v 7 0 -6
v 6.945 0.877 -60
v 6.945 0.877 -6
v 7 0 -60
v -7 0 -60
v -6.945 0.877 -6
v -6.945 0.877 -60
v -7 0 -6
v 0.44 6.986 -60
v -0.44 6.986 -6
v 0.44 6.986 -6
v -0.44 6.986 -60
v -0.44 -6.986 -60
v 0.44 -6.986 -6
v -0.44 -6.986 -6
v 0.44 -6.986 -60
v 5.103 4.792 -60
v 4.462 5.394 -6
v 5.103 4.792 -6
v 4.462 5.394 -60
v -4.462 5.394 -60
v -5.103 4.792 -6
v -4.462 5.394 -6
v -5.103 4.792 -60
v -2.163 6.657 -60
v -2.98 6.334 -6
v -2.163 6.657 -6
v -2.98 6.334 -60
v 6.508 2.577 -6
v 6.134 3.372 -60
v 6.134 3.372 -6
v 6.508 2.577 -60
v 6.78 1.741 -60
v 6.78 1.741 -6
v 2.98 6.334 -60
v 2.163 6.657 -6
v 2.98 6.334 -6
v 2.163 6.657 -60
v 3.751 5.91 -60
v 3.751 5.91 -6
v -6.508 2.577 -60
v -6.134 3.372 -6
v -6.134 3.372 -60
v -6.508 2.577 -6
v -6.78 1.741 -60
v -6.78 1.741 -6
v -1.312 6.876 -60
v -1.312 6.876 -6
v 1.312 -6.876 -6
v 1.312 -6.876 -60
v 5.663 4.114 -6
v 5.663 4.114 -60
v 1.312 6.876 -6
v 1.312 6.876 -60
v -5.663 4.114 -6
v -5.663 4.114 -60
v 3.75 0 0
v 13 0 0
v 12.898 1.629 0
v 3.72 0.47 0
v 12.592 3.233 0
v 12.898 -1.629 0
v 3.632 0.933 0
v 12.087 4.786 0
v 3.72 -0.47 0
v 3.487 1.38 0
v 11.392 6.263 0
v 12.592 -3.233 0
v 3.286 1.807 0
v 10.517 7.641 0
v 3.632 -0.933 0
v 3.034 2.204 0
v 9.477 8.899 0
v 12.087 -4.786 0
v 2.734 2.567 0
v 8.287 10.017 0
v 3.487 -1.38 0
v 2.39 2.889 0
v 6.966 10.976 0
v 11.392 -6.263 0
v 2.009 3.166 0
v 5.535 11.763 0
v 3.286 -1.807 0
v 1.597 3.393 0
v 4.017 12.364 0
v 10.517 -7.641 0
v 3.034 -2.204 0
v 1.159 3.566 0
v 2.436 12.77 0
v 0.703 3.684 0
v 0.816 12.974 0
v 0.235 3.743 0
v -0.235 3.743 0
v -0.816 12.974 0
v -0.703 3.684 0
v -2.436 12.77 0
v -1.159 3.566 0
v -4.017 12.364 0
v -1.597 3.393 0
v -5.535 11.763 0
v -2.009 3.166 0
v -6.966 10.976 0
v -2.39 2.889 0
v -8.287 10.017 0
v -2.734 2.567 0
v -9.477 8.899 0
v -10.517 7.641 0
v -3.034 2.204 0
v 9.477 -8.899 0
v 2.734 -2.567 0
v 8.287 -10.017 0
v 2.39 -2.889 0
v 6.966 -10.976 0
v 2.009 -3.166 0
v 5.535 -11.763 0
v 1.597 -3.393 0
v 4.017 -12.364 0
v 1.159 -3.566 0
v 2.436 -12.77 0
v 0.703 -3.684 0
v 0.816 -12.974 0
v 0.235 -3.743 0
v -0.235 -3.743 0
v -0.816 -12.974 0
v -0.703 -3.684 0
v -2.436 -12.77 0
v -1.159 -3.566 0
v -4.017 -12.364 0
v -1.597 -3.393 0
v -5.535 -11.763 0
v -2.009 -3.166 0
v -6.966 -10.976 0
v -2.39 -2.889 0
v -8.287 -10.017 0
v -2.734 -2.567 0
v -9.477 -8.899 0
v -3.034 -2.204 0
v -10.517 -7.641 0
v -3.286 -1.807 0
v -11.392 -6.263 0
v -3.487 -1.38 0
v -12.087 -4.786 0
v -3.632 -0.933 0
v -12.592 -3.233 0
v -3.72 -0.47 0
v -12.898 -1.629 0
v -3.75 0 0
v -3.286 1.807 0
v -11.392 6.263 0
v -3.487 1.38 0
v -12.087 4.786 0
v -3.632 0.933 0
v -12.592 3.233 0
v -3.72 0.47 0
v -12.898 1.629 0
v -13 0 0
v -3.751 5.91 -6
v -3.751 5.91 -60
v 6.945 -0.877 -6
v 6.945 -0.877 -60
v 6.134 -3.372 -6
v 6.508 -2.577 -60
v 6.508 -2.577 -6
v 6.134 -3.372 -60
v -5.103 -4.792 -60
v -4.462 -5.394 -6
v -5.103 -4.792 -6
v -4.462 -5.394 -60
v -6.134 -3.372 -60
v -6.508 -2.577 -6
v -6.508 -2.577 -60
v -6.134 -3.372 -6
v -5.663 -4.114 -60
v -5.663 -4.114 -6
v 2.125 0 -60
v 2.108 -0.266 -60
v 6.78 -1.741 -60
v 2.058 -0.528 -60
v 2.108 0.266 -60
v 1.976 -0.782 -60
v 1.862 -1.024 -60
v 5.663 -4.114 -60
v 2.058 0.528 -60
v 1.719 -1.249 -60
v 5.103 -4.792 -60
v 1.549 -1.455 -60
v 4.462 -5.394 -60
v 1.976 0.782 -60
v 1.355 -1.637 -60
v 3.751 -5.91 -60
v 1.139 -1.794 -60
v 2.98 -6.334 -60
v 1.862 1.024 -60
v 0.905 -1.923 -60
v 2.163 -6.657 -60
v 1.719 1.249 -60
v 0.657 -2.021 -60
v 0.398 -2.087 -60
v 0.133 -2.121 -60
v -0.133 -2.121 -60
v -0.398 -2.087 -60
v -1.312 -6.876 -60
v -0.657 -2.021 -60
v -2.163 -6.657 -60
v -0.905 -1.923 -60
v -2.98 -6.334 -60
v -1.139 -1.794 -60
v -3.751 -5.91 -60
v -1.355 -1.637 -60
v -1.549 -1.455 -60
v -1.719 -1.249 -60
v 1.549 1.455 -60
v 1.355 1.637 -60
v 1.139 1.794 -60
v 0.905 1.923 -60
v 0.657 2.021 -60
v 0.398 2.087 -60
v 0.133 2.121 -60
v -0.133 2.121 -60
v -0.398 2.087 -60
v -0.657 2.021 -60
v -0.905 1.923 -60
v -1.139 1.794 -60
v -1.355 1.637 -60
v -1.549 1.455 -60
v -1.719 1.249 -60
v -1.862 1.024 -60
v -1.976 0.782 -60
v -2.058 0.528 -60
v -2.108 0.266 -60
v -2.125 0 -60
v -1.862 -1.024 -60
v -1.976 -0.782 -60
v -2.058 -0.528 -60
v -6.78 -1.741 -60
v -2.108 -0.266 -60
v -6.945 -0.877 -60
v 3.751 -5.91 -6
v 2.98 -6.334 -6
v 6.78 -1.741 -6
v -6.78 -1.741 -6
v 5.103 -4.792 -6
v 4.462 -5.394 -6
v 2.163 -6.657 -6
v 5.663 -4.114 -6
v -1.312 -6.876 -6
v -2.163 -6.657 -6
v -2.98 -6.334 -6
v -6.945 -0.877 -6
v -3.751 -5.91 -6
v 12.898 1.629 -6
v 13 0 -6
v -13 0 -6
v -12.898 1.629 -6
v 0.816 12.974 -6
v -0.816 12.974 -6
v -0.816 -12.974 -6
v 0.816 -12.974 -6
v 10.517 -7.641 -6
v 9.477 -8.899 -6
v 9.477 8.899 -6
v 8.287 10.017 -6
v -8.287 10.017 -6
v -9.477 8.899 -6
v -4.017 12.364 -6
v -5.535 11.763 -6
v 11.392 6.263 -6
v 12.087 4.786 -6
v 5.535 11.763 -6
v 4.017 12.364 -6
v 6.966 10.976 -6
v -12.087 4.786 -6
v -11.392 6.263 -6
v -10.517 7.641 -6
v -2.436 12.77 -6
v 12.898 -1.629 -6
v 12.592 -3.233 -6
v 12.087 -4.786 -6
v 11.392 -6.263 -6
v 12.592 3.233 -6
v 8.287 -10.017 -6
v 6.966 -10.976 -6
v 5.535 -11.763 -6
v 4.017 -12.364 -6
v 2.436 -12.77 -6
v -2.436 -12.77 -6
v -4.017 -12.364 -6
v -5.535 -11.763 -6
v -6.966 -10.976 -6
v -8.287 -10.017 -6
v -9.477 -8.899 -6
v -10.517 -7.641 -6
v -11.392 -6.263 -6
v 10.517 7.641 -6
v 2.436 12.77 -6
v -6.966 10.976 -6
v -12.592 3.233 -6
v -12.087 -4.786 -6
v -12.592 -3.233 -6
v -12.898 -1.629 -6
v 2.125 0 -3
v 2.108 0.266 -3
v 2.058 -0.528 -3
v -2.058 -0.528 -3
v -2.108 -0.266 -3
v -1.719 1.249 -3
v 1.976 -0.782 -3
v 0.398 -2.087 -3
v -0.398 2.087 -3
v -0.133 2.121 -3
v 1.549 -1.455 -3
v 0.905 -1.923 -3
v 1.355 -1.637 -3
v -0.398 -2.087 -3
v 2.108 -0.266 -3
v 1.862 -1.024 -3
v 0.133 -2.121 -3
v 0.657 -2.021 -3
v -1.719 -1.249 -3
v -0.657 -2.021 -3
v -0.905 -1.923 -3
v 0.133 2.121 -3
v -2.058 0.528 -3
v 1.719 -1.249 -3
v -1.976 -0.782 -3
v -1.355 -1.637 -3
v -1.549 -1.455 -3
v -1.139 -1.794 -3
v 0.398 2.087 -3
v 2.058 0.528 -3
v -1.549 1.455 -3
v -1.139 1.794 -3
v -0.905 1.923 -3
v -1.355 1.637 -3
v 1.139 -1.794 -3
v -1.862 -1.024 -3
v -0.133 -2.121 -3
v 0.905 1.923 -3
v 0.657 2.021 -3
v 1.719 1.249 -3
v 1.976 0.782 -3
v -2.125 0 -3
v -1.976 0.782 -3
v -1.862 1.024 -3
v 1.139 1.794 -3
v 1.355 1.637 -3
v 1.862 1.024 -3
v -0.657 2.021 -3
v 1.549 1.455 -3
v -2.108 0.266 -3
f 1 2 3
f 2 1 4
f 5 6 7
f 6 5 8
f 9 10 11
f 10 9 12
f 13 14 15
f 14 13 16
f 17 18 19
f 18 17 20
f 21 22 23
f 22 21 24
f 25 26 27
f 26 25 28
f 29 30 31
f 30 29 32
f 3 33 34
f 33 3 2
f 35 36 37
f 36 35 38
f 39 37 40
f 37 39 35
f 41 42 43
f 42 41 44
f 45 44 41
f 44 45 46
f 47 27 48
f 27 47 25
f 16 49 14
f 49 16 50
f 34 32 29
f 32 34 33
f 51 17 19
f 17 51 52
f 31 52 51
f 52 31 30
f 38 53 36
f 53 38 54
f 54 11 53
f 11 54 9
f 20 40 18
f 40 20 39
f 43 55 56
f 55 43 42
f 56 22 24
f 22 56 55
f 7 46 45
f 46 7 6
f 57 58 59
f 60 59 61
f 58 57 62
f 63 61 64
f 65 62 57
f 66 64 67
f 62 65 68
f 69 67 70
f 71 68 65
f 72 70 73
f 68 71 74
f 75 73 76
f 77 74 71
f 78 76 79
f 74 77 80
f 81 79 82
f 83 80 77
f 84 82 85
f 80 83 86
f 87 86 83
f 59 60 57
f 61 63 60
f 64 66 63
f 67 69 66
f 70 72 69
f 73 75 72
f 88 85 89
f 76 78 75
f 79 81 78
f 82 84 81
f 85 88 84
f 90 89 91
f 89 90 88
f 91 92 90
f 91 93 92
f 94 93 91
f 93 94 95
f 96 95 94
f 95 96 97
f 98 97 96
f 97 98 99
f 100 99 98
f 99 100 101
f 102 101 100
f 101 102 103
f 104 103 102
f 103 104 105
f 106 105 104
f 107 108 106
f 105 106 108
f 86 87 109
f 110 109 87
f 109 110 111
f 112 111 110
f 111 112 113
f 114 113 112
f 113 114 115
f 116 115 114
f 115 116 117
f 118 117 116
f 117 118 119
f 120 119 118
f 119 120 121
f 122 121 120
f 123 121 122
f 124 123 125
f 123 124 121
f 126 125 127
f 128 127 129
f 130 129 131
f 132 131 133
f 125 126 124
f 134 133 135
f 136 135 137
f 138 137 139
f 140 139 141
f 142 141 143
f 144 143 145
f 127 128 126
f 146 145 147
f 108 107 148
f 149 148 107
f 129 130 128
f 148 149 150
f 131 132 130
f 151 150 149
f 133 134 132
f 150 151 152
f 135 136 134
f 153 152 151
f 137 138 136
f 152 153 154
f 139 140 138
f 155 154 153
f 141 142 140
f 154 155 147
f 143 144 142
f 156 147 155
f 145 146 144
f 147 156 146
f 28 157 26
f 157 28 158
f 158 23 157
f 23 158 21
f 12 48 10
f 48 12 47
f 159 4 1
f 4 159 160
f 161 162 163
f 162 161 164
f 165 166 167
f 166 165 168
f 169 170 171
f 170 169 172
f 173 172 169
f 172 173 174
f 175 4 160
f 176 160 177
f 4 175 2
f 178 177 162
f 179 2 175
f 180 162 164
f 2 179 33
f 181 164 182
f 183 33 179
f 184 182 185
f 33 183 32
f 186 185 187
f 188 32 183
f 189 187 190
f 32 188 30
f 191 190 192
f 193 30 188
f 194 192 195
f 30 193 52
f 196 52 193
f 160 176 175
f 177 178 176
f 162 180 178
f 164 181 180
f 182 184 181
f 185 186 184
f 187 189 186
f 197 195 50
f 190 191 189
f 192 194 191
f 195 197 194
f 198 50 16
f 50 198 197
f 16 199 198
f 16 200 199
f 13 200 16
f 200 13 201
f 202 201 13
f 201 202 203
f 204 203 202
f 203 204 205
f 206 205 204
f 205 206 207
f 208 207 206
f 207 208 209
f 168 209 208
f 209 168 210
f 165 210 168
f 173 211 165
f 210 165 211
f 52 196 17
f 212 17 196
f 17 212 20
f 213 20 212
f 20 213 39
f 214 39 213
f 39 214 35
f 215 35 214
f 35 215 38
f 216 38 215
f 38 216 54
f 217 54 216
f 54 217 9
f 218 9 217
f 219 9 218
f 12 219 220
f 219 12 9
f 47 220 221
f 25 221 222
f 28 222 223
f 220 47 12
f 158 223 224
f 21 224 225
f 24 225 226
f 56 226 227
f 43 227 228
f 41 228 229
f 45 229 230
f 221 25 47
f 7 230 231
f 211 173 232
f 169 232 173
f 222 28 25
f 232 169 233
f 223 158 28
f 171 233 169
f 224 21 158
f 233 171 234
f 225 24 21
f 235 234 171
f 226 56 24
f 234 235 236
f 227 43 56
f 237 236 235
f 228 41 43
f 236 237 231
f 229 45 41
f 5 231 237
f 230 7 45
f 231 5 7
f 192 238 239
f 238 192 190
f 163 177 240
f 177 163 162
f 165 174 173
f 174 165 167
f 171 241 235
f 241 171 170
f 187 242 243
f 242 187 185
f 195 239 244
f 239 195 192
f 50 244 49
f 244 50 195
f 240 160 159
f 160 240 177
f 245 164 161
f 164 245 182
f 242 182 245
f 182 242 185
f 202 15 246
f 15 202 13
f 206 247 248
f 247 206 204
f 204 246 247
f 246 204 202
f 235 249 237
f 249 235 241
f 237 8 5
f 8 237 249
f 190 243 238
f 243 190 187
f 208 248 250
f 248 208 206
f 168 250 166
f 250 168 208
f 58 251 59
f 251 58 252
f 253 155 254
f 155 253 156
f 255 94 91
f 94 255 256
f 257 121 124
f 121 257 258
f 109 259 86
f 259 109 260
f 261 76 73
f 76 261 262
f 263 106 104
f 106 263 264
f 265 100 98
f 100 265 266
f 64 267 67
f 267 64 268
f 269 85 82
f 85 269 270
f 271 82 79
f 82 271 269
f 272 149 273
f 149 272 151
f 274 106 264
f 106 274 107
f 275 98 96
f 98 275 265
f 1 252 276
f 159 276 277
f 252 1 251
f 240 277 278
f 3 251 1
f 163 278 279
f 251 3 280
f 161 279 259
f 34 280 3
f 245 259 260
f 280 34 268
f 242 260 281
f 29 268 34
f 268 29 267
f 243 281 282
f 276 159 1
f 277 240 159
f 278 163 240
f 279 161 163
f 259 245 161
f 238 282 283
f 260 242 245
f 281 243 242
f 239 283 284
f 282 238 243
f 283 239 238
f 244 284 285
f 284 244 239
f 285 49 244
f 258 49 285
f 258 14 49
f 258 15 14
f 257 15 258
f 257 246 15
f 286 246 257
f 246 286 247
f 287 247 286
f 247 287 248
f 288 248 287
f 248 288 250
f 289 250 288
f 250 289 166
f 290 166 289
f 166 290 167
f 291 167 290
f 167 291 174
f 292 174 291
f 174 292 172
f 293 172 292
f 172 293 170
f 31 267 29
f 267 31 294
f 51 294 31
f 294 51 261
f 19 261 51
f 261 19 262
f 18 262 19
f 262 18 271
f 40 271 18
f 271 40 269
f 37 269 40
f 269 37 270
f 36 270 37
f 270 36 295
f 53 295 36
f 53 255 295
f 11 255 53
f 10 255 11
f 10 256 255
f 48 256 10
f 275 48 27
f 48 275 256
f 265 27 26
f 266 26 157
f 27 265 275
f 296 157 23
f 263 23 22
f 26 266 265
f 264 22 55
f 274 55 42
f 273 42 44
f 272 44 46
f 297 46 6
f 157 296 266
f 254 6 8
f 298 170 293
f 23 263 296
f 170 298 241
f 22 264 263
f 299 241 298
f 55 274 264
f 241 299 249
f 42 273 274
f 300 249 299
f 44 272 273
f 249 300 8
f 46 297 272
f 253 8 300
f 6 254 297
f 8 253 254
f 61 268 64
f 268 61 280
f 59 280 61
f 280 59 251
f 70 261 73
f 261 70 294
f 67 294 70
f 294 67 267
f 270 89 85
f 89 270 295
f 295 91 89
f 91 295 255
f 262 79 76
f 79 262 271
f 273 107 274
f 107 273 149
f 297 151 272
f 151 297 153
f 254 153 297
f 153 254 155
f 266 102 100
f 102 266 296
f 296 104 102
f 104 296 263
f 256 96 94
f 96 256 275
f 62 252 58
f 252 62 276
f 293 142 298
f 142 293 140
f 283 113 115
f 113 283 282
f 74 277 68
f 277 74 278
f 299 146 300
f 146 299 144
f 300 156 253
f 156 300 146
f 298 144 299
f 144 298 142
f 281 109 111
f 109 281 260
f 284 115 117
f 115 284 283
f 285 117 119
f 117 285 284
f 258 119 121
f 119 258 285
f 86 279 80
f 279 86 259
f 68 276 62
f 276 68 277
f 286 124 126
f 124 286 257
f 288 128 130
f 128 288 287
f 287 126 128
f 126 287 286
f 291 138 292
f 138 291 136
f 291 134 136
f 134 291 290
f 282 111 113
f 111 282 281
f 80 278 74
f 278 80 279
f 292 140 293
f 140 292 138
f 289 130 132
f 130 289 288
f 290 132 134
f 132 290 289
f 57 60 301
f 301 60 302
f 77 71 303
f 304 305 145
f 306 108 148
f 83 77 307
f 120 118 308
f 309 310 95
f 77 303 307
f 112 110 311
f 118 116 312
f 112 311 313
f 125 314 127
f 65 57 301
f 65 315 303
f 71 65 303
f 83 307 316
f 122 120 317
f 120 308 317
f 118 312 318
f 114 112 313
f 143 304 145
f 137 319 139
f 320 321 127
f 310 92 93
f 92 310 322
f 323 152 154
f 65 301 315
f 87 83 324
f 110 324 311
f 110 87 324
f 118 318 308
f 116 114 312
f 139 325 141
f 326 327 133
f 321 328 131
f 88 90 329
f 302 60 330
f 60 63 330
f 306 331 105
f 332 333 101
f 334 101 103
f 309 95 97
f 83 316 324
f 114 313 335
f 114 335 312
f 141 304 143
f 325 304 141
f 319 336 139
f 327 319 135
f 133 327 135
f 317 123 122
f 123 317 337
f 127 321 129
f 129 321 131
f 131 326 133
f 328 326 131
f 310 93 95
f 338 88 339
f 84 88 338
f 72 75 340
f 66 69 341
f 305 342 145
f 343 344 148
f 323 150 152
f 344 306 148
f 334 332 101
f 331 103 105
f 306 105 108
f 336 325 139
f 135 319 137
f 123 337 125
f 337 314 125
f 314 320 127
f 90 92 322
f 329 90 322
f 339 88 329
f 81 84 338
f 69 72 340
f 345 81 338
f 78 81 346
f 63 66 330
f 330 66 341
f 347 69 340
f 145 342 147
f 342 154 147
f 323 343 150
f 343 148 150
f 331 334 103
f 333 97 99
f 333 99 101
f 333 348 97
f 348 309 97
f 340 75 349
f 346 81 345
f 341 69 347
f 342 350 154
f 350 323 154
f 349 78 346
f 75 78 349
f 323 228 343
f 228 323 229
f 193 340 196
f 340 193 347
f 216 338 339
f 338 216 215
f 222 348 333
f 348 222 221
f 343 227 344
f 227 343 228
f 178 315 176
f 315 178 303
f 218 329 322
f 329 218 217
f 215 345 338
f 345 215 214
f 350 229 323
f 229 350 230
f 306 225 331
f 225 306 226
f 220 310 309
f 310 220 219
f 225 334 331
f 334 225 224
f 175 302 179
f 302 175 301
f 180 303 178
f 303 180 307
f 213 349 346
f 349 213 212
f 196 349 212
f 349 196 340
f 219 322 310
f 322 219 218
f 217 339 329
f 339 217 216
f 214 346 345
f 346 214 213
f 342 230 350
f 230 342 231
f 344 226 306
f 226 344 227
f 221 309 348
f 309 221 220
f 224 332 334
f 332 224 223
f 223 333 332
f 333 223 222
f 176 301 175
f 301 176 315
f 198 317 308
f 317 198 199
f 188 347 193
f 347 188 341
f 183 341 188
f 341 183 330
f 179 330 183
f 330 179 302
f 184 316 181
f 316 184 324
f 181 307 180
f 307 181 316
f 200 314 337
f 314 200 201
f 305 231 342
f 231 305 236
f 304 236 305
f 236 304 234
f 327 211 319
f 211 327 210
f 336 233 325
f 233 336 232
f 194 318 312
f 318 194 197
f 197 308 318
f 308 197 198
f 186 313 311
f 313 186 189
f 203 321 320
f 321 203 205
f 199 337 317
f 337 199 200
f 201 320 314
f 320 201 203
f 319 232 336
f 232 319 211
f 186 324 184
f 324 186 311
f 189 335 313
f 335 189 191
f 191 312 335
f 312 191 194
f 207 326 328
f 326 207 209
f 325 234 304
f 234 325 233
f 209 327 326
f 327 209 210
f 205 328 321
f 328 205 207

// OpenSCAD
$fn = 50;


difference() {
	union() {
		translate(v = [0, 0, -60.0000000000]) {
			cylinder(h = 60, r = 7.0000000000);
		}
		translate(v = [0, 0, -6.0000000000]) {
			cylinder(h = 6, r = 13.0000000000);
		}
	}
	union() {
		translate(v = [0, 0, 0]) {
			rotate(a = [0, 0, 0]) {
				difference() {
					union() {
						#translate(v = [0, 0, -60.0000000000]) {
							cylinder(h = 60, r = 2.0000000000);
						}
						#translate(v = [0, 0, -3]) {
							cylinder(h = 3, r = 7.0000000000, r1 = 2.1250000000, r2 = 3.7500000000);
						}
						#translate(v = [0, 0, -60.0000000000]) {
							cylinder(h = 60, r = 2.1250000000);
						}
						#translate(v = [0, 0, -60.0000000000]) {
							cylinder(h = 60, r = 2.0000000000);
						}
					}
					union();
				}
			}
		}
	}
}
